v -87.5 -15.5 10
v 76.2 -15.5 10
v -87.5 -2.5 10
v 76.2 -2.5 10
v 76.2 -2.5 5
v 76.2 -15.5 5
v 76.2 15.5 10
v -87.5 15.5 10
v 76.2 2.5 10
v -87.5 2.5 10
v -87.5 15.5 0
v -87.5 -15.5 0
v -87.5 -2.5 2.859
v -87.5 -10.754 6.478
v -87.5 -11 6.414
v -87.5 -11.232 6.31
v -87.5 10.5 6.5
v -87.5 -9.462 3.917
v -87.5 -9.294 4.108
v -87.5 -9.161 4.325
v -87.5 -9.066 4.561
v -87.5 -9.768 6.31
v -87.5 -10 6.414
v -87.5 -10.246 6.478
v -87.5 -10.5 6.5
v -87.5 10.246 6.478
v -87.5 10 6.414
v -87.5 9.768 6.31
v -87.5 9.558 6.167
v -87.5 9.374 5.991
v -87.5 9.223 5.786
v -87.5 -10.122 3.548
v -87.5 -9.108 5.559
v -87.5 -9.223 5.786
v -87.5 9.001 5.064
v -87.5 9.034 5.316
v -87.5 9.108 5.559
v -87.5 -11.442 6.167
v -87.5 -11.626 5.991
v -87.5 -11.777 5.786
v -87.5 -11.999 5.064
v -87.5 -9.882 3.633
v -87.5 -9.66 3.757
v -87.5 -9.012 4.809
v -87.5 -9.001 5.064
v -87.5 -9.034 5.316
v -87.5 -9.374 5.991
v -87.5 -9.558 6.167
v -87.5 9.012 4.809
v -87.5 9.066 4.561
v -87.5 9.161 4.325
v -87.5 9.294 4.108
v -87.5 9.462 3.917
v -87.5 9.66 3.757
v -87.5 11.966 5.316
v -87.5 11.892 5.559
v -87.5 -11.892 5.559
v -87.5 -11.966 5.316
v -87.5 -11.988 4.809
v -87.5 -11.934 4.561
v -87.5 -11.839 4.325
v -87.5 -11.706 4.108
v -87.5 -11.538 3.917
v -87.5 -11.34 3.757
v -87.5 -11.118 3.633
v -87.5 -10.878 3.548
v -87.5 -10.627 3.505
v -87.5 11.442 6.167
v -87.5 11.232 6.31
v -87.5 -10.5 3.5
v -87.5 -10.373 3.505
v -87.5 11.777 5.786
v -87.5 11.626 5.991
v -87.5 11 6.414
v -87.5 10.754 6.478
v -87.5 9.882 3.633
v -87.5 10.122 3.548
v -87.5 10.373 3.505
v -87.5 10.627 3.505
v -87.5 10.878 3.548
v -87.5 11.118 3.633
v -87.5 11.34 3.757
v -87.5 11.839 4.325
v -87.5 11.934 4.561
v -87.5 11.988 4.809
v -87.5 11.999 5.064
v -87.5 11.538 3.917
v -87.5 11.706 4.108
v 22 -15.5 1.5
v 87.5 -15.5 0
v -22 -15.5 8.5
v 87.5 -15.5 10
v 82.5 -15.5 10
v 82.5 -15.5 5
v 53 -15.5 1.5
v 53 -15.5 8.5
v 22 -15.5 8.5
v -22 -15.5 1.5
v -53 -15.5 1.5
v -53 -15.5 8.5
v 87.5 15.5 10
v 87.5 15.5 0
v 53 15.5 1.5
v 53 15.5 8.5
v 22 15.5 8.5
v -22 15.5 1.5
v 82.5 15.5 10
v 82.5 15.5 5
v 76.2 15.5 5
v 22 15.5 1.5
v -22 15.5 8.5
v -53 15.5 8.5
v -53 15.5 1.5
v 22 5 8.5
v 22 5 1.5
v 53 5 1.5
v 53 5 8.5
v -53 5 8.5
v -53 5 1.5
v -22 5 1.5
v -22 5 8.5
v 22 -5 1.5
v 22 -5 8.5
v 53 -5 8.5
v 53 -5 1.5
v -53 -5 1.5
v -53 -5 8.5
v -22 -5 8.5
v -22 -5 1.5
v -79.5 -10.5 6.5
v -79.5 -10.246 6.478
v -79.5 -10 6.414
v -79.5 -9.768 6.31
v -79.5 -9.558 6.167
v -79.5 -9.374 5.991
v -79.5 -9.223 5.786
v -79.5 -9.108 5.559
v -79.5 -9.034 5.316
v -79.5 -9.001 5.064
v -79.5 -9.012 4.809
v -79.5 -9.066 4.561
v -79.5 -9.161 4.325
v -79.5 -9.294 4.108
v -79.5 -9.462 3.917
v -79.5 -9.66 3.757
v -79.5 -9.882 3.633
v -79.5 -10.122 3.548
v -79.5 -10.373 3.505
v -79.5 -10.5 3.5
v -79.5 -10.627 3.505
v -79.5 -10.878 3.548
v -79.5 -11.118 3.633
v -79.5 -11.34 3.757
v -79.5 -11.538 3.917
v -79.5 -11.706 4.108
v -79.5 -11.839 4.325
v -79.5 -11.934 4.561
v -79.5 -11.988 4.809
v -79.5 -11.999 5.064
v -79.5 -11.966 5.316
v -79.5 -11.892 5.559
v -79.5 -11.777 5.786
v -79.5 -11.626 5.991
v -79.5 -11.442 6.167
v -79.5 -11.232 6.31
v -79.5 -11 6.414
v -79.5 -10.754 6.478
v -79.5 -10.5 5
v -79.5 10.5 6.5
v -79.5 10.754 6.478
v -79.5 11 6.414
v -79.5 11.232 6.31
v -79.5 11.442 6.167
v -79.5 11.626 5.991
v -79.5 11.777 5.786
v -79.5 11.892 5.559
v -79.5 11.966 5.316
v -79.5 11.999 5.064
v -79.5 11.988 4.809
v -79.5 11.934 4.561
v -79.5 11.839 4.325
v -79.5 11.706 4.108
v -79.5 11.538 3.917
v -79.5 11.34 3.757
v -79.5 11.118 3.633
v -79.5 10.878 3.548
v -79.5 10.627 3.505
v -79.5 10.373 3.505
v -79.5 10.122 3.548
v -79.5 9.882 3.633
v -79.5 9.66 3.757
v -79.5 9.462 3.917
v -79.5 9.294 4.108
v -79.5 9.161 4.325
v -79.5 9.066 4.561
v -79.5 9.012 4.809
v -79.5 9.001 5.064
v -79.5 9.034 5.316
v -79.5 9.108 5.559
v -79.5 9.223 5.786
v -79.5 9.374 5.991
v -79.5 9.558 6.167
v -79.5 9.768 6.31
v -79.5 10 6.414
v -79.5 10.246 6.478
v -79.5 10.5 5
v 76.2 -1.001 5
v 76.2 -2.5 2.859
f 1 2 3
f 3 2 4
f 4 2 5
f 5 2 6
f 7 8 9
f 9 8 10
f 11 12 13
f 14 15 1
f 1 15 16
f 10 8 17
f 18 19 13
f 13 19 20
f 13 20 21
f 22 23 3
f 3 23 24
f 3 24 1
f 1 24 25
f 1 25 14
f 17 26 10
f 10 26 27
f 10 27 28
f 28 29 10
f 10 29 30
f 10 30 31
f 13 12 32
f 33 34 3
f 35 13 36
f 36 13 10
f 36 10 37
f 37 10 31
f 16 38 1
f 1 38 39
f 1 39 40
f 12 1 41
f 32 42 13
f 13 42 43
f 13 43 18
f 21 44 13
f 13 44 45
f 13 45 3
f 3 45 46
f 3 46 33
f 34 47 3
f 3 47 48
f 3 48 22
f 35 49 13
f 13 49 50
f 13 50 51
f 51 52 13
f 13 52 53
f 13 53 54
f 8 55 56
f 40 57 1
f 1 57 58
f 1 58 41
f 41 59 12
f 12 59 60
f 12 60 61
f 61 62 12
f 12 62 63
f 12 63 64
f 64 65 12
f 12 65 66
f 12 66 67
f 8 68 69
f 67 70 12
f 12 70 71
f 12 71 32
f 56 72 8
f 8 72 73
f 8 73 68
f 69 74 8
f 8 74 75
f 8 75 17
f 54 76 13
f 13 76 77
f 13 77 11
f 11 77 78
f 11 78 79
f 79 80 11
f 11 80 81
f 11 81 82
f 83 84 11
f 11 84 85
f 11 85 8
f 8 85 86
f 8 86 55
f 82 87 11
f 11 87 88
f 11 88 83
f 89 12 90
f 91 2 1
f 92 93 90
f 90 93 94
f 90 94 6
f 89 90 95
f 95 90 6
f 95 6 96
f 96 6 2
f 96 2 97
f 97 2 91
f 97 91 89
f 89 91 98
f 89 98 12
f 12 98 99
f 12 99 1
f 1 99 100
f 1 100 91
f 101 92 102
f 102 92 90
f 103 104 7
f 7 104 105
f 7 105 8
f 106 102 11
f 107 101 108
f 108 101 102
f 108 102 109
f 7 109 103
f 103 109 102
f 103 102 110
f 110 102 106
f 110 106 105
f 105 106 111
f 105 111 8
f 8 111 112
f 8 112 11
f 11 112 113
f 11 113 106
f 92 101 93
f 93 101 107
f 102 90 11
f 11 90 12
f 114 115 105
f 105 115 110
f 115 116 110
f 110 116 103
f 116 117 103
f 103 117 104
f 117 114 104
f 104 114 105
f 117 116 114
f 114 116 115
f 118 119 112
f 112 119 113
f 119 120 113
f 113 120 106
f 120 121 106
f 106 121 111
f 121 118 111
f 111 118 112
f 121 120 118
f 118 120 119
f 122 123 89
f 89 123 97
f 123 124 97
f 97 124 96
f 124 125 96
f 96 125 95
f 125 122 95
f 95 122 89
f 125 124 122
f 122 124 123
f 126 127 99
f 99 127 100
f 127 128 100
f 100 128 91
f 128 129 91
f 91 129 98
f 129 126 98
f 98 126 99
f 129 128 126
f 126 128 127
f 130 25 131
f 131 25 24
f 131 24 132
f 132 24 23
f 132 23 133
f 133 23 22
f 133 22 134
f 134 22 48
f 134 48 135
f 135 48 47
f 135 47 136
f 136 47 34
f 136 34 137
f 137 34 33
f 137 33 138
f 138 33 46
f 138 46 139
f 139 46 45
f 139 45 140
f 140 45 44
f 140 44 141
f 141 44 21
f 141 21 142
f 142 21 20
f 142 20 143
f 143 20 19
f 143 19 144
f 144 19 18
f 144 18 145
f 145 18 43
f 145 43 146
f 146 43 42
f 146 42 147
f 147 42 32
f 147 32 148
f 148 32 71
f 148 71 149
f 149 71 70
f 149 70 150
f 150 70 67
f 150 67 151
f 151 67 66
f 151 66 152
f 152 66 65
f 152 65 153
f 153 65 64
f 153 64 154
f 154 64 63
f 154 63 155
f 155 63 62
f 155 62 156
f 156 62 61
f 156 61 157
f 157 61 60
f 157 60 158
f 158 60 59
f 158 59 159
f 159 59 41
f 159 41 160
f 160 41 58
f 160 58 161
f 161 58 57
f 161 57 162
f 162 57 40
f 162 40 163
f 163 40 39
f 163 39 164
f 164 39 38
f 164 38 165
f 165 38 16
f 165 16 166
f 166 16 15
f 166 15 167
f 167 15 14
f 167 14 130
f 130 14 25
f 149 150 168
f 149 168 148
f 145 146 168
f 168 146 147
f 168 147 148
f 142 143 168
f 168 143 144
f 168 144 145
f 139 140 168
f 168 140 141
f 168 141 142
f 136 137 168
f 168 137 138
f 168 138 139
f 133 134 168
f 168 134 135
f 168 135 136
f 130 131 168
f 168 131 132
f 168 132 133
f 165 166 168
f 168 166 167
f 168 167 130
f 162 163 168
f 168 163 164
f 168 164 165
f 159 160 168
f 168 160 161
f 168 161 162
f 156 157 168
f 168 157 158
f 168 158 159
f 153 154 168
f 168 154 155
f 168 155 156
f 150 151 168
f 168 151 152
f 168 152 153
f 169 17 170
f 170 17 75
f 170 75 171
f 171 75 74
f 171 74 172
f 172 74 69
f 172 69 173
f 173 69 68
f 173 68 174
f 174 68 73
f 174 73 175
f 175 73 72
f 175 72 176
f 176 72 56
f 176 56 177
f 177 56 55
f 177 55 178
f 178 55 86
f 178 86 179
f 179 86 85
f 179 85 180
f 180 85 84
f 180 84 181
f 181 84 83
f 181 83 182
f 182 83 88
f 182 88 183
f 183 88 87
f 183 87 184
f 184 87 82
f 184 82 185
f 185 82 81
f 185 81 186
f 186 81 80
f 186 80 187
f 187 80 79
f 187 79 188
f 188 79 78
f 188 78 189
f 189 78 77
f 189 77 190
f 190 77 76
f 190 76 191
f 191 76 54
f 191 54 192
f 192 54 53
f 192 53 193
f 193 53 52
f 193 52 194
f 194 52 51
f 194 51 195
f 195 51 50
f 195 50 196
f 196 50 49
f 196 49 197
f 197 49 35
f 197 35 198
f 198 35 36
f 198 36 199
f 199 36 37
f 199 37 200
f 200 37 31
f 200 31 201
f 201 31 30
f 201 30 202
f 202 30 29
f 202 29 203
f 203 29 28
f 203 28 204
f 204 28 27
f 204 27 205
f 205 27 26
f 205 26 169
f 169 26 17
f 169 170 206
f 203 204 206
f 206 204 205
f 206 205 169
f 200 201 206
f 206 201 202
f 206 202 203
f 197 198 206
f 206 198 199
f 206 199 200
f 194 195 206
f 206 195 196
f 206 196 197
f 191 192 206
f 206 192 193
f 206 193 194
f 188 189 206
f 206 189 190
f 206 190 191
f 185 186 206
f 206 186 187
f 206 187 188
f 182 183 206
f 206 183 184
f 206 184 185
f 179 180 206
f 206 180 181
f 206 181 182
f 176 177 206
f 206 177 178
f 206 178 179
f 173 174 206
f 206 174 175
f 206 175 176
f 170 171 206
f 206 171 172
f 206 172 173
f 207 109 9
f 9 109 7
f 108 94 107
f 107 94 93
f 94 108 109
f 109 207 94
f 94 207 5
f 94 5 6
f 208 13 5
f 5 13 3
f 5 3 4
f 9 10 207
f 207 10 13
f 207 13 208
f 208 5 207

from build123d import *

# Parameters (mm, degrees)
ESBO_O1_W                = 175
ESBO_O1_H                = 31
RESSALTO_EXTRUS_O1_DEPTH = 10
ESBO_O2_W                = 31
ESBO_O2_H                = 7
CORTE_EXTRUS_O1_DEPTH    = 10.5
ESBO_O3_W                = 31
ESBO_O3_H                = 7
CORTE_EXTRUS_O2_DEPTH    = 10.5
ESBO_O5_R                = 1.5
CORTE_EXTRUS_O4_DEPTH    = 8
ESBO_O7_W                = 6.3
ESBO_O7_H                = 31
CORTE_EXTRUS_O6_DEPTH    = 5
CORTE_EXTRUS_O7_DEPTH    = 163.7


with BuildPart() as part:
    # Esboço1 → Ressalto-extrusão1 (new body)
    with BuildSketch(Plane.XY):
        Rectangle(ESBO_O1_W, ESBO_O1_H)
    extrude(amount=RESSALTO_EXTRUS_O1_DEPTH)

    # Esboço2 → Corte-extrusão1 (cut)
    with BuildSketch(Plane(origin=(0, 15.5, 0), x_dir=(1, 0, 0), z_dir=(0, 1, 0))):
        with Locations((-37.5, -5)):
            Rectangle(ESBO_O2_W, ESBO_O2_H)
        with Locations((37.5, -5)):
            Rectangle(ESBO_O2_W, ESBO_O2_H)
    extrude(amount=-CORTE_EXTRUS_O1_DEPTH, mode=Mode.SUBTRACT)

    # Esboço3 → Corte-extrusão2 (cut)
    with BuildSketch(Plane.XZ.offset(15.5)):
        with Locations((-37.5, 5)):
            Rectangle(ESBO_O3_W, ESBO_O3_H)
        with Locations((37.5, 5)):
            Rectangle(ESBO_O3_W, ESBO_O3_H)
    extrude(amount=-CORTE_EXTRUS_O2_DEPTH, mode=Mode.SUBTRACT)

    # Esboço5 → Corte-extrusão4 (cut)
    with BuildSketch(Plane.ZY.offset(87.5)):
        with Locations((5, 10.5)):
            Circle(ESBO_O5_R)
        with Locations((5, -10.5)):
            Circle(ESBO_O5_R)
    extrude(amount=-CORTE_EXTRUS_O4_DEPTH, mode=Mode.SUBTRACT)

    # Esboço7 → Corte-extrusão6 (cut)
    with BuildSketch(Plane.XY.offset(10)):
        with Locations((79.35, 0)):
            Rectangle(ESBO_O7_W, ESBO_O7_H)
    extrude(amount=-CORTE_EXTRUS_O6_DEPTH, mode=Mode.SUBTRACT)

    # Esboço8 → Corte-extrusão7 (cut)
    with BuildSketch(Plane.ZY.offset(87.5)):
        Polygon((10, 2.5), (2.859259966, -2.5), (10, -2.5), align=None)
    extrude(amount=-CORTE_EXTRUS_O7_DEPTH, mode=Mode.SUBTRACT)


solid = part.part
